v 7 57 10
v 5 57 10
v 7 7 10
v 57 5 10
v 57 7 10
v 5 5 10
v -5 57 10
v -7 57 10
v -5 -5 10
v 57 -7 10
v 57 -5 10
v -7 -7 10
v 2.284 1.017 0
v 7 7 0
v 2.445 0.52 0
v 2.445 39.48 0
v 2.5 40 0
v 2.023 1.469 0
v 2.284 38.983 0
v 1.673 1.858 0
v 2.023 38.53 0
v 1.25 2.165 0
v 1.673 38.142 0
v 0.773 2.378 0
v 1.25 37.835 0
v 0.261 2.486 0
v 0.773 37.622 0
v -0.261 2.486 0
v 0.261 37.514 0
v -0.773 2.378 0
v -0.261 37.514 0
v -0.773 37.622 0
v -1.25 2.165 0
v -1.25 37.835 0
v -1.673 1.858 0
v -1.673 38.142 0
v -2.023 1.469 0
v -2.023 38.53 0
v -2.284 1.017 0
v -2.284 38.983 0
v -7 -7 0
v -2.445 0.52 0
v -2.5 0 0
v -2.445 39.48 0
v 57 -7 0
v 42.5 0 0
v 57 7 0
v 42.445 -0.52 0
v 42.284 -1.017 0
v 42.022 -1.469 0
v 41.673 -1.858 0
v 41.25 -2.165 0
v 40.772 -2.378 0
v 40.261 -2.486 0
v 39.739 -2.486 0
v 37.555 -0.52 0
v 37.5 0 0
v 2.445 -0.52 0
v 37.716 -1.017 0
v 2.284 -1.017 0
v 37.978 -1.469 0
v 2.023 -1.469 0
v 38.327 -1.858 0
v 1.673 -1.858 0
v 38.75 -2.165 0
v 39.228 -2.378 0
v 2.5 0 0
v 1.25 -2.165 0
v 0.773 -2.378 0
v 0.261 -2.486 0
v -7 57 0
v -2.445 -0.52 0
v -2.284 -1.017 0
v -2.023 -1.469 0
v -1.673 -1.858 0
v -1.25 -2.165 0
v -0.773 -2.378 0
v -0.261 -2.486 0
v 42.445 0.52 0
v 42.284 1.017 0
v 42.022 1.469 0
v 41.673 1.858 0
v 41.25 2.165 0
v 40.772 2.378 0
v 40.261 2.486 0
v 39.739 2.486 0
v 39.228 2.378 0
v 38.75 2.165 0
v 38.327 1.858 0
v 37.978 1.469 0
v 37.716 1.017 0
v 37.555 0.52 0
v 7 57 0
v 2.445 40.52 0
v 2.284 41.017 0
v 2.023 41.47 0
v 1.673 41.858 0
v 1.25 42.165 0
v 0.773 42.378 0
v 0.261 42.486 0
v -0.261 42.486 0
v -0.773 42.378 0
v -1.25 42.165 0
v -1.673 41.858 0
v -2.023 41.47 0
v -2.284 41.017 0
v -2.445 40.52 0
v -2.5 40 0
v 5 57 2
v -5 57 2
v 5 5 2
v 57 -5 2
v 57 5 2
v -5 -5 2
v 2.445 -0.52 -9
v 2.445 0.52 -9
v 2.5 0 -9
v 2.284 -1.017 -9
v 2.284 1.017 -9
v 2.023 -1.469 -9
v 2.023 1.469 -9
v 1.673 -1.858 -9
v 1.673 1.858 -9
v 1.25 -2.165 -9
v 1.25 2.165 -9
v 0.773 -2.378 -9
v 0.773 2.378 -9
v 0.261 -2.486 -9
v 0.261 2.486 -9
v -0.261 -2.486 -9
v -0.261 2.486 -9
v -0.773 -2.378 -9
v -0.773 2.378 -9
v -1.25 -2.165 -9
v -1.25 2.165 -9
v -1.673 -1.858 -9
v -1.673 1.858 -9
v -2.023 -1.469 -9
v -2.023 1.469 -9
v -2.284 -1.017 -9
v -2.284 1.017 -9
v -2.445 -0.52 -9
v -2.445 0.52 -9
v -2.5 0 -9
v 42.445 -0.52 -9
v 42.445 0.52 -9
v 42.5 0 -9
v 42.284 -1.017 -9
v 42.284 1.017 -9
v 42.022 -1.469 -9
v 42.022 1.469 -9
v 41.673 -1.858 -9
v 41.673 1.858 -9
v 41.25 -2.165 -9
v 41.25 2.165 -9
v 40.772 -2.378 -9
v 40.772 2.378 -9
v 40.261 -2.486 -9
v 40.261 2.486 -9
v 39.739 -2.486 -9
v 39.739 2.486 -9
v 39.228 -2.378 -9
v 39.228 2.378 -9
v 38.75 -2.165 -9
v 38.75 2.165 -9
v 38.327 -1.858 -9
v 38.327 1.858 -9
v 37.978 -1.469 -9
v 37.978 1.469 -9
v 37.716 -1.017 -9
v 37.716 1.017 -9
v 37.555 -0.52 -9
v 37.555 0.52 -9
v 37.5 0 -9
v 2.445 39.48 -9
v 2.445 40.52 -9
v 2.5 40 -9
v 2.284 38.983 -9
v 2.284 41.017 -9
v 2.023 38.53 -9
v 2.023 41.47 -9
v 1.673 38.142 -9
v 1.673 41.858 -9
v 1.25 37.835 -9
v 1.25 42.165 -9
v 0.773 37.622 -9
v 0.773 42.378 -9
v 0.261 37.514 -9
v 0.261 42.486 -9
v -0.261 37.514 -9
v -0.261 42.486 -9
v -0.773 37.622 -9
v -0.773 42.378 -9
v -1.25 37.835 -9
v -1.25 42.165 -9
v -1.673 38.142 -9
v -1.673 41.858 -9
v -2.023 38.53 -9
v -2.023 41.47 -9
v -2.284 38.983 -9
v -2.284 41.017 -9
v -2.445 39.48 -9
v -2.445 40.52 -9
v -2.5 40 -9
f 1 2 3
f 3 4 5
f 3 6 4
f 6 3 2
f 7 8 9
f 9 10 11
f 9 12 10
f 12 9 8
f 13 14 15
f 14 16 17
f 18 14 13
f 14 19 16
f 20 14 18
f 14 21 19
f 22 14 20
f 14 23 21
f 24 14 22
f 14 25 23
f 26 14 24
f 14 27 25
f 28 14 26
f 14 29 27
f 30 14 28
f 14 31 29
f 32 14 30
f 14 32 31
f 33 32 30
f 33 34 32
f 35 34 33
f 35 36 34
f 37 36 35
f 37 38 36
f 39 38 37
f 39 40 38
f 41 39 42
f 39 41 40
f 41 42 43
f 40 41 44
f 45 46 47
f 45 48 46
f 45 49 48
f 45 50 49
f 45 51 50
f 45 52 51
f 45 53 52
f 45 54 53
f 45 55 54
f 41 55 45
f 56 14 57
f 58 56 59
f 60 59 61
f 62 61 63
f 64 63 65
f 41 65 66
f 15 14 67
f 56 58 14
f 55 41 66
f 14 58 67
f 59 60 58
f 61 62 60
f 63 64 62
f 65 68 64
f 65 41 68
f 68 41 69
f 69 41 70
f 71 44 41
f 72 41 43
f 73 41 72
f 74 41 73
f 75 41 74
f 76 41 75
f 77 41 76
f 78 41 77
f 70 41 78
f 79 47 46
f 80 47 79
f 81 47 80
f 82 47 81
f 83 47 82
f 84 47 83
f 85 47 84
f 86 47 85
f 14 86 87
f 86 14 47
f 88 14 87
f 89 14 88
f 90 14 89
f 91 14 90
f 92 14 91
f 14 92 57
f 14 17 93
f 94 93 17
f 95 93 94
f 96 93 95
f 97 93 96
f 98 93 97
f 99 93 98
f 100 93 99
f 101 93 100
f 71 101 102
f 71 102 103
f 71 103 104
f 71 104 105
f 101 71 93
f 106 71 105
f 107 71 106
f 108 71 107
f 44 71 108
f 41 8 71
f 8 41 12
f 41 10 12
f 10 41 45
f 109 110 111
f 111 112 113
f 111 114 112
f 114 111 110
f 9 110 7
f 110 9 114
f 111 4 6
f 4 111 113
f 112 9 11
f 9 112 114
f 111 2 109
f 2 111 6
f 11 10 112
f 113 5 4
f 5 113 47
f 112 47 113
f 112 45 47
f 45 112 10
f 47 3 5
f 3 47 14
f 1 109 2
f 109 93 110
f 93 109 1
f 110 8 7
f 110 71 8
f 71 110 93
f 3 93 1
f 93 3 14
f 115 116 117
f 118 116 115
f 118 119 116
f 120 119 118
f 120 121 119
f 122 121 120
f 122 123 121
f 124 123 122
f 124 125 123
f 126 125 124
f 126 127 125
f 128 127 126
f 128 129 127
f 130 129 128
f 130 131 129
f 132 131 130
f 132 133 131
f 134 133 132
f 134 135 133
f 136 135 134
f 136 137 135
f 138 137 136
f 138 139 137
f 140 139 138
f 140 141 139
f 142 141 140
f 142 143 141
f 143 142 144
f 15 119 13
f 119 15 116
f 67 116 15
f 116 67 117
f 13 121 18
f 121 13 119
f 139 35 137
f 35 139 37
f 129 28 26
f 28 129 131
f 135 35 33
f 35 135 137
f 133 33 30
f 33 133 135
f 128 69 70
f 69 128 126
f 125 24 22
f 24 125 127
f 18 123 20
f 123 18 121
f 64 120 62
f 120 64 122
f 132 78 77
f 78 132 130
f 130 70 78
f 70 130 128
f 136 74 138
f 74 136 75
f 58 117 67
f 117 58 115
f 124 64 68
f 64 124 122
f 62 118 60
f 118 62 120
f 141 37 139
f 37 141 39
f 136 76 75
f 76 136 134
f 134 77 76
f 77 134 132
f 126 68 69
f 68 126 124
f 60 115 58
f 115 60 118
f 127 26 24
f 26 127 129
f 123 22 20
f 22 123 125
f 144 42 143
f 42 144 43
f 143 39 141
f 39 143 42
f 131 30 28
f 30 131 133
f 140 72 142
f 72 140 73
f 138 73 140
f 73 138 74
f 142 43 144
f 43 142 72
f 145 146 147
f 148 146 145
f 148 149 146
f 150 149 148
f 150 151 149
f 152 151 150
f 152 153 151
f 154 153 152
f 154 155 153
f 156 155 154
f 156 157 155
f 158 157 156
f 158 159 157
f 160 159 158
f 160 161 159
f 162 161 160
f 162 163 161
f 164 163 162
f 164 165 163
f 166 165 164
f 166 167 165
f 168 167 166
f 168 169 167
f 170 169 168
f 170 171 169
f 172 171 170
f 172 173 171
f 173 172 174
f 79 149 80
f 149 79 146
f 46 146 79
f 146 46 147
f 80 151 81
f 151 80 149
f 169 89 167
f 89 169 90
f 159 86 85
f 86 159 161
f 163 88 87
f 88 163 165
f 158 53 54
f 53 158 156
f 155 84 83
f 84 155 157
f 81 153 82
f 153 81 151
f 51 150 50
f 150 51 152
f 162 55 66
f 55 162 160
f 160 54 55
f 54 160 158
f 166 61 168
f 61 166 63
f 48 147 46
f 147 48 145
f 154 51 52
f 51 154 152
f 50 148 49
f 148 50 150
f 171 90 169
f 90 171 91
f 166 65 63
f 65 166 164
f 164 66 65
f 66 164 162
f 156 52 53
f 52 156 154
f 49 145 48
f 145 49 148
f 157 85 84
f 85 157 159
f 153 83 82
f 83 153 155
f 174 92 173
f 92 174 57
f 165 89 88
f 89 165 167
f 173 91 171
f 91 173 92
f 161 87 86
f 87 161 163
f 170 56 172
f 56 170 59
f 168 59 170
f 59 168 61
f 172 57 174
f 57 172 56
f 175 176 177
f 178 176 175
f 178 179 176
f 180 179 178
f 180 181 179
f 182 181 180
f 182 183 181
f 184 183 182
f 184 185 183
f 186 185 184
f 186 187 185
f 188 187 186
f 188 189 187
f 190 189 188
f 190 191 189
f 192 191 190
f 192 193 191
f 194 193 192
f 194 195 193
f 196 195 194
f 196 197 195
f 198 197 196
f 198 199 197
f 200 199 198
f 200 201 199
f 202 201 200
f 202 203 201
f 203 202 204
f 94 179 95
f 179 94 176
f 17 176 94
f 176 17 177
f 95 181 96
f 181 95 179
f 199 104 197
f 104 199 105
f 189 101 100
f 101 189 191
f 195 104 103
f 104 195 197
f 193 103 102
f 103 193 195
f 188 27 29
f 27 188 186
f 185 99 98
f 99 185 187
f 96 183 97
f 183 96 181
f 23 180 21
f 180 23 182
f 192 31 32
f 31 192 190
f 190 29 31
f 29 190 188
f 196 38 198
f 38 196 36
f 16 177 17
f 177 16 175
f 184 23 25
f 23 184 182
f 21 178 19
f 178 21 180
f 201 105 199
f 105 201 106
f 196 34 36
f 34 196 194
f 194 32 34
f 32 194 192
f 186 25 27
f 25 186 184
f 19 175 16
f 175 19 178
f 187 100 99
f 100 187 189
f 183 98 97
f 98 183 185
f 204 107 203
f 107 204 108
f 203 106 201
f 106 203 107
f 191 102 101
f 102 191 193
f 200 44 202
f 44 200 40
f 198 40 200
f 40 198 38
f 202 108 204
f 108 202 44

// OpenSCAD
// Угловой паз с шипами для вставки в основание (УДЛИНЕННАЯ ВЕРСИЯ)
// Модульная конструкция: центральное основание + 2 рукава (угол) + шипы

// Параметры (все размеры в мм)
center_size = 10;     // Размер центрального квадрата (внутри)
sleeve_length = 50;   // Длина рукава (удлиненная)
groove_width = 10;    // Ширина паза (внутри) - для фанеры 9.3мм
wall_height = 10;     // Высота стенок
wall_thickness = 2;   // Толщина стенок

// Параметры шипов
dowel_diameter = 5;   // Диаметр шипа
dowel_depth = 9;      // Глубина шипа (высота)
dowel_spacing = 40;   // Шаг между шипами (удлиненный)

// Вычисляемые размеры
total_width = groove_width + 2 * wall_thickness;  // 14 мм
center_total = center_size + 2 * wall_thickness;  // 14 мм

// 1. Метод: нарисовать основание
module draw_base() {
    difference() {
        cube([center_total, center_total, wall_height]);
        translate([wall_thickness, wall_thickness, wall_thickness])
            cube([center_size, center_size, wall_height]);
    }
}

// Модуль для создания одного рукава
module single_sleeve() {
    difference() {
        cube([sleeve_length, total_width, wall_height]);
        translate([0, wall_thickness, wall_thickness])
            cube([sleeve_length, groove_width, wall_height]);
    }
}

// Метод: вырезать отверстие в стенке основания
module cut_wall_opening(side) {
    if (side == 0) {
        translate([center_total - wall_thickness - 0.1, wall_thickness, wall_thickness])
            cube([wall_thickness + 0.2, groove_width, wall_height]);
    } else if (side == 1) {
        translate([wall_thickness, center_total - wall_thickness - 0.1, wall_thickness])
            cube([groove_width, wall_thickness + 0.2, wall_height]);
    }
}

// 2. Метод: прицепить рукав к основанию
module attach_sleeve(side) {
    if (side == 0) {
        translate([center_total, center_total/2 - total_width/2, 0])
            single_sleeve();
    } else if (side == 1) {
        translate([center_total/2 + total_width/2, center_total, 0])
            rotate([0, 0, 90])
                single_sleeve();
    }
}

// 3. Метод: добавить шип в позиции (x, y)
module add_dowel(x, y) {
    translate([x, y, -dowel_depth])
        cylinder(h=dowel_depth, d=dowel_diameter, $fn=30);
}

// Собираем L-образную конструкцию с шипами
translate([-center_total/2, -center_total/2, 0]) {
    union() {
        difference() {
            draw_base();
            cut_wall_opening(0);  // Право
            cut_wall_opening(1);  // Верх
        }
        attach_sleeve(0);  // Право
        attach_sleeve(1);  // Верх

        // Шипы: центр + 2 направления
        add_dowel(center_total/2, center_total/2);                    // Центр (угол)
        add_dowel(center_total/2 + dowel_spacing, center_total/2);   // Право
        add_dowel(center_total/2, center_total/2 + dowel_spacing);   // Верх
    }
}

// Информация для проверки
echo("=== Размеры углового паза с шипами (LONG) ===");
echo("Длина рукава:", sleeve_length, "мм");
echo("Количество шипов: 3 (угол + 2 направления)");
echo("Шаг между шипами:", dowel_spacing, "мм");
